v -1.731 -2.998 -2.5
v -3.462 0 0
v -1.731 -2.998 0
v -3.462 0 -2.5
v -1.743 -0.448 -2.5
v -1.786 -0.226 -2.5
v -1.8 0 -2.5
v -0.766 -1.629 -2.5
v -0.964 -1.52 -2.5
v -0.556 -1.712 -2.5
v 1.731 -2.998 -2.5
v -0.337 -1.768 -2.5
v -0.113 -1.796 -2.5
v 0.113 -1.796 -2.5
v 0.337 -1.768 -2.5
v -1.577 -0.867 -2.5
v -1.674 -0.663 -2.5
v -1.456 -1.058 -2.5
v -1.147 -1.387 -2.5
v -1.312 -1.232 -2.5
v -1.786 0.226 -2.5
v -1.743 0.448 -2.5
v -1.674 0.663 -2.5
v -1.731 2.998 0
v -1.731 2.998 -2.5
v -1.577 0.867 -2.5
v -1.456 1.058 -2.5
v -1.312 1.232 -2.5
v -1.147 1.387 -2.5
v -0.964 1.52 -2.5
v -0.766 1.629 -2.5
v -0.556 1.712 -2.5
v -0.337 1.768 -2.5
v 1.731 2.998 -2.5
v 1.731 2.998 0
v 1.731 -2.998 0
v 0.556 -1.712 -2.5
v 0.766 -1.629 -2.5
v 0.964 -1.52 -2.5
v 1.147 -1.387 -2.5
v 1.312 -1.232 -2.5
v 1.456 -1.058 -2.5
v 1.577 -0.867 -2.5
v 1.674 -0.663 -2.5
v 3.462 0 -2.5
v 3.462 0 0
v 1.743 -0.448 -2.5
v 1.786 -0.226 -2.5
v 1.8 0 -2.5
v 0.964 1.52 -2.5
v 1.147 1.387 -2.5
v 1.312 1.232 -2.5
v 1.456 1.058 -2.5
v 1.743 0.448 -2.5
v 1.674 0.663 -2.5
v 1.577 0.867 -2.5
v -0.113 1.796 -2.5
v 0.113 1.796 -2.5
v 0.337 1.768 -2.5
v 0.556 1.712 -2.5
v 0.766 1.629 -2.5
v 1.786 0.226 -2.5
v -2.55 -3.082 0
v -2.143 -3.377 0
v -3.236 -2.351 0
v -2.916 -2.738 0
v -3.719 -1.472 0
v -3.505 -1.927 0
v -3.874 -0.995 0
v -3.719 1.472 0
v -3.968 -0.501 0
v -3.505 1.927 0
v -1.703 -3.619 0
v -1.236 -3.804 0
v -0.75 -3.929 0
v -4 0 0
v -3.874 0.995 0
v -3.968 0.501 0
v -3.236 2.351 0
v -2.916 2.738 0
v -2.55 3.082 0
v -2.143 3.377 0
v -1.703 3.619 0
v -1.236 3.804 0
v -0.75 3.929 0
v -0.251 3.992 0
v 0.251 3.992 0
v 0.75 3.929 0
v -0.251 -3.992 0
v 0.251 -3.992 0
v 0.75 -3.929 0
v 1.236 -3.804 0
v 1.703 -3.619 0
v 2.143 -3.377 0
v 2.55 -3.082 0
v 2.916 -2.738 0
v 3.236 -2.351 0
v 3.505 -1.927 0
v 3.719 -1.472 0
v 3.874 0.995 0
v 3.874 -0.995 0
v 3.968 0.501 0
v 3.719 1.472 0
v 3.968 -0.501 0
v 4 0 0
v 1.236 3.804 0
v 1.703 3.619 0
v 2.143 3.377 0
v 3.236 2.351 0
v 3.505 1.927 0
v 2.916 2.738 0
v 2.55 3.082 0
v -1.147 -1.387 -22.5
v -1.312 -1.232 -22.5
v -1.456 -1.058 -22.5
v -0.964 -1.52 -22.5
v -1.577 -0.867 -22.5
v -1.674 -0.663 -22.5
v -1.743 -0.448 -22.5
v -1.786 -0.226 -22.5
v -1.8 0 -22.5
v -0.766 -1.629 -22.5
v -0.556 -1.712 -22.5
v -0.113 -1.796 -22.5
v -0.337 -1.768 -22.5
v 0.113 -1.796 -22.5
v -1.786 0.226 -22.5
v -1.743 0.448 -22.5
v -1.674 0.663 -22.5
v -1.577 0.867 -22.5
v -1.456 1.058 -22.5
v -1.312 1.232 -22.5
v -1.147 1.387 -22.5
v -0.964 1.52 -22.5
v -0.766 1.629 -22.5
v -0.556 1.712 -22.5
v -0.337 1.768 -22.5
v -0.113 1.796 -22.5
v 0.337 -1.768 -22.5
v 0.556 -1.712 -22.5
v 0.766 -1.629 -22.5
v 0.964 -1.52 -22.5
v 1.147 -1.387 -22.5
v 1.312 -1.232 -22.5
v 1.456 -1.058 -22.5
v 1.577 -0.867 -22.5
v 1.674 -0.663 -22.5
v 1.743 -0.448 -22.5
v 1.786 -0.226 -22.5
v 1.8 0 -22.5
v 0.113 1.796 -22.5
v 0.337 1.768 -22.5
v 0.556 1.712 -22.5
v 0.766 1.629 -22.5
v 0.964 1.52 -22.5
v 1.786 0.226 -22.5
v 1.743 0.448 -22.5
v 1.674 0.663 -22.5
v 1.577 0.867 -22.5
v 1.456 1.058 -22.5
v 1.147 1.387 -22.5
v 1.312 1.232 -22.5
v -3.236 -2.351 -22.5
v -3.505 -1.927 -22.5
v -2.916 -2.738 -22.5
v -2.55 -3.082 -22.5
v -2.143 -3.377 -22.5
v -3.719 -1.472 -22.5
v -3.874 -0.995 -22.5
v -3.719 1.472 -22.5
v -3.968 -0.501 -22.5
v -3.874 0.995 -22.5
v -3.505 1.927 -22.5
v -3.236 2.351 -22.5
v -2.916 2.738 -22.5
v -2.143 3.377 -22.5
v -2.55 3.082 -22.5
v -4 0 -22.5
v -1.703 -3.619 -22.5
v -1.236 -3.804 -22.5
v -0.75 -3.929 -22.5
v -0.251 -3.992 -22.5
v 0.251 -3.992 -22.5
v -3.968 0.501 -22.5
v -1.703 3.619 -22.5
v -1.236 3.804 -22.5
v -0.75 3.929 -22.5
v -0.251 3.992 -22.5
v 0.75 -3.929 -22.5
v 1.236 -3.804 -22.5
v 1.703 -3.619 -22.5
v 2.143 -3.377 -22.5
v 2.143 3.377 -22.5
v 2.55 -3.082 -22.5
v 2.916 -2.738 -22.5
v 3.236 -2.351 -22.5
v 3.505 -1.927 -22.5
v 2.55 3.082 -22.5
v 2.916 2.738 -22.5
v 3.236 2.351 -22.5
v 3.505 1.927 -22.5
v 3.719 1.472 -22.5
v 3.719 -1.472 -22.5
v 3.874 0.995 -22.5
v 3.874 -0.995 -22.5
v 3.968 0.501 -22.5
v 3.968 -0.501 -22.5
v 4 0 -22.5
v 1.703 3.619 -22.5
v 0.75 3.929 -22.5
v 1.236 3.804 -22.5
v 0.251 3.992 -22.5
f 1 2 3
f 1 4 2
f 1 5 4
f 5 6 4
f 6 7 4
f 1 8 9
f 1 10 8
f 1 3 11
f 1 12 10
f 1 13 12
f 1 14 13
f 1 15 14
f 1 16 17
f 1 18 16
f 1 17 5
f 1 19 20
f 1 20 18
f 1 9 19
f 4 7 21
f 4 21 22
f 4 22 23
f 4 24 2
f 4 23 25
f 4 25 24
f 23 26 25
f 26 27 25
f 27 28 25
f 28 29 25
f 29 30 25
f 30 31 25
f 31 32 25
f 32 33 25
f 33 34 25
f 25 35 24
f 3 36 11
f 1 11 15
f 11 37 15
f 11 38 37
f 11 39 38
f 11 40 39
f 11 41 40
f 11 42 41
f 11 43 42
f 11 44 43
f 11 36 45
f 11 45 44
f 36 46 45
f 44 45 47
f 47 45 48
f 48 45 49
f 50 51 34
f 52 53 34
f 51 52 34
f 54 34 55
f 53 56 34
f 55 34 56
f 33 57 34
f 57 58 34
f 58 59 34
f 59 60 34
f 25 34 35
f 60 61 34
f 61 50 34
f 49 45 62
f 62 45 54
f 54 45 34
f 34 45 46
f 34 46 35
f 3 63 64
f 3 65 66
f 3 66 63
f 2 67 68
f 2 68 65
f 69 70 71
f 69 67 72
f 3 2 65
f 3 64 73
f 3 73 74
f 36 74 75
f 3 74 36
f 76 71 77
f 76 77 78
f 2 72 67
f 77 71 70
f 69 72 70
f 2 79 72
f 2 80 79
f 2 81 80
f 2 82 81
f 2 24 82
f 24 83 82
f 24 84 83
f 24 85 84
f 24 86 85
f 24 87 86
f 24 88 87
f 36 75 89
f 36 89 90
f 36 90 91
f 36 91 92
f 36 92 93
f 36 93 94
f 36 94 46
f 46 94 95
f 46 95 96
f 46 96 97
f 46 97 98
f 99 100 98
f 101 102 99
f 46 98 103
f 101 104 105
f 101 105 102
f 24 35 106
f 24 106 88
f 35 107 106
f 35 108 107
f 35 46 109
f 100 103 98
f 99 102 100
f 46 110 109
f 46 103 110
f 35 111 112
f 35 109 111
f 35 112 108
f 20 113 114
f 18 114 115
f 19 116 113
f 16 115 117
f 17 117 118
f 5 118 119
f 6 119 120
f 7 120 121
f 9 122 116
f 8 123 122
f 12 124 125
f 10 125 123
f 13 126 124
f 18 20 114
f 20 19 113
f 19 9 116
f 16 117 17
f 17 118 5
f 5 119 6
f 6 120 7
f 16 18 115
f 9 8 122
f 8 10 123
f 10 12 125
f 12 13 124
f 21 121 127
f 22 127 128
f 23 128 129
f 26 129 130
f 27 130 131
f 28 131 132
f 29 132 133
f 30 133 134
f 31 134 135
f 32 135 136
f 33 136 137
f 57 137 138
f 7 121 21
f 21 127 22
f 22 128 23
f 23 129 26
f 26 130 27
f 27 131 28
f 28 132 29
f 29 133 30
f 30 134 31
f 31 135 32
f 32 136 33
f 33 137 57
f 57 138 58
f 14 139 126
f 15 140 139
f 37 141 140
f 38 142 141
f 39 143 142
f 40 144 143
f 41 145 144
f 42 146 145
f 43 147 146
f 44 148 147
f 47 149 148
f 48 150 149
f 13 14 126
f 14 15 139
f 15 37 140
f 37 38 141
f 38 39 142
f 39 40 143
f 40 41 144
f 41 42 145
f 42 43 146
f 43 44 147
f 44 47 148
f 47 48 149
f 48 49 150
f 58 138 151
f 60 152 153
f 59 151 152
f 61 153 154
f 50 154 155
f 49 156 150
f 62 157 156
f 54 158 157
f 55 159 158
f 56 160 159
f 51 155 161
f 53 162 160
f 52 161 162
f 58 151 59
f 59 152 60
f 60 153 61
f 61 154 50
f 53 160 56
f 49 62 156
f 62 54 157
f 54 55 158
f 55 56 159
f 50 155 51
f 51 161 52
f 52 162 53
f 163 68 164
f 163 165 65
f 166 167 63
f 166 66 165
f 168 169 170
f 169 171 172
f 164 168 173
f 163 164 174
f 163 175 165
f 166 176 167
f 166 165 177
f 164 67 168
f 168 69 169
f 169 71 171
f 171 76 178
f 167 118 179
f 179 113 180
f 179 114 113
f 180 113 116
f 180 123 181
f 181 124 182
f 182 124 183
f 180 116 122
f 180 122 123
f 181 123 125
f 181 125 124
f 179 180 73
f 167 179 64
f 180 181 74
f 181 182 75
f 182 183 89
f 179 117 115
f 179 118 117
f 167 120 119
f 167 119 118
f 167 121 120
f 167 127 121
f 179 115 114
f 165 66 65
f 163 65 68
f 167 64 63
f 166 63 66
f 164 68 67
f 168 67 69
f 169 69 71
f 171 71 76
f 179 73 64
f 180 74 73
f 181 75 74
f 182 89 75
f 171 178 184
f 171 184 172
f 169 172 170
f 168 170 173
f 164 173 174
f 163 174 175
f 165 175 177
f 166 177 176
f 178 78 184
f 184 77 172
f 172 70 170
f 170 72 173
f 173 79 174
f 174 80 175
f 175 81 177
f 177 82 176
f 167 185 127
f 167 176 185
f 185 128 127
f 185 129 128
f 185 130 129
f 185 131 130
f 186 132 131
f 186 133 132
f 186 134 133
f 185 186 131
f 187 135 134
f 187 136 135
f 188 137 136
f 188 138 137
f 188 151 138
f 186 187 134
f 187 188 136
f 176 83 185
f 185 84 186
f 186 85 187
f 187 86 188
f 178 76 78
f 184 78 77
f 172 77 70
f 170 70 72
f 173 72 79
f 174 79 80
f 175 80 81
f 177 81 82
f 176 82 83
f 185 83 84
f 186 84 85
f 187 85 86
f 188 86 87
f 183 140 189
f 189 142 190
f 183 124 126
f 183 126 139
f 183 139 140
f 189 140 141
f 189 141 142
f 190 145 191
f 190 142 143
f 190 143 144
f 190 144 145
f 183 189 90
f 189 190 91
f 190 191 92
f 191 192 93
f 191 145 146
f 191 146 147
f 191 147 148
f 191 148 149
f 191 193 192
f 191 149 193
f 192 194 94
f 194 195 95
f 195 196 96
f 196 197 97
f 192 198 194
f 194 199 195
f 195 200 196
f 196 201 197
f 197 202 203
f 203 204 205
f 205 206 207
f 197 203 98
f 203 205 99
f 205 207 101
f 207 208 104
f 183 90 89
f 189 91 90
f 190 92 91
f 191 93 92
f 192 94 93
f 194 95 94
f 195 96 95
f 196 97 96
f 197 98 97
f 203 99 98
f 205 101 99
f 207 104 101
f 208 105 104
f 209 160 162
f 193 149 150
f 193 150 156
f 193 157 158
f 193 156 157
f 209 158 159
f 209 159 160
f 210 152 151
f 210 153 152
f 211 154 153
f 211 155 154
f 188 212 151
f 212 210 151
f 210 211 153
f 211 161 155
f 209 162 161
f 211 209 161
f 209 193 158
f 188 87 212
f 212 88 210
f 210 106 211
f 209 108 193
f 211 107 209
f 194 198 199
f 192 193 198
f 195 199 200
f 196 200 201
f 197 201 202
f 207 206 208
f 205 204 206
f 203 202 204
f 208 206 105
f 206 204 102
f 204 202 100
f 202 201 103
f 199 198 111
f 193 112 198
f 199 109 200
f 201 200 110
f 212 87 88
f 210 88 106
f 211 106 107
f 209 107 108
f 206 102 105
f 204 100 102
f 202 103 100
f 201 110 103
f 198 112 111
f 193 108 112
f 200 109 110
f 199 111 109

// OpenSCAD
$fn = 50;

difference() {
	union() {
		translate(v = [0, 0, -22.5]) {
			cylinder(h = 25.5, r = 4.0);
		}
	}
	union() {
		translate(v = [0, 0, 0]) {
			rotate(a = [0, 0, 0]) {
				difference() {
					union() {
						translate(v = [0, 0, -2.5]) {
							linear_extrude(height = 2.5) {
								polygon(points = [[3.4619999999999997, 0.0], [1.7310000000000003, 2.9981799479017264], [-1.7309999999999992, 2.9981799479017264], [-3.4619999999999997, 4.2397272186481365e-16], [-1.7310000000000014, -2.998179947901726], [1.7309999999999977, -2.9981799479017277]]);
							}
						}
					}
					union();
				}
			}
		}
		#cylinder(h = 3, r = 5.0);
		#translate(v = [0, 0, -100.0]) {
			cylinder(h = 200, r = 1.8);
		}
	}
}
